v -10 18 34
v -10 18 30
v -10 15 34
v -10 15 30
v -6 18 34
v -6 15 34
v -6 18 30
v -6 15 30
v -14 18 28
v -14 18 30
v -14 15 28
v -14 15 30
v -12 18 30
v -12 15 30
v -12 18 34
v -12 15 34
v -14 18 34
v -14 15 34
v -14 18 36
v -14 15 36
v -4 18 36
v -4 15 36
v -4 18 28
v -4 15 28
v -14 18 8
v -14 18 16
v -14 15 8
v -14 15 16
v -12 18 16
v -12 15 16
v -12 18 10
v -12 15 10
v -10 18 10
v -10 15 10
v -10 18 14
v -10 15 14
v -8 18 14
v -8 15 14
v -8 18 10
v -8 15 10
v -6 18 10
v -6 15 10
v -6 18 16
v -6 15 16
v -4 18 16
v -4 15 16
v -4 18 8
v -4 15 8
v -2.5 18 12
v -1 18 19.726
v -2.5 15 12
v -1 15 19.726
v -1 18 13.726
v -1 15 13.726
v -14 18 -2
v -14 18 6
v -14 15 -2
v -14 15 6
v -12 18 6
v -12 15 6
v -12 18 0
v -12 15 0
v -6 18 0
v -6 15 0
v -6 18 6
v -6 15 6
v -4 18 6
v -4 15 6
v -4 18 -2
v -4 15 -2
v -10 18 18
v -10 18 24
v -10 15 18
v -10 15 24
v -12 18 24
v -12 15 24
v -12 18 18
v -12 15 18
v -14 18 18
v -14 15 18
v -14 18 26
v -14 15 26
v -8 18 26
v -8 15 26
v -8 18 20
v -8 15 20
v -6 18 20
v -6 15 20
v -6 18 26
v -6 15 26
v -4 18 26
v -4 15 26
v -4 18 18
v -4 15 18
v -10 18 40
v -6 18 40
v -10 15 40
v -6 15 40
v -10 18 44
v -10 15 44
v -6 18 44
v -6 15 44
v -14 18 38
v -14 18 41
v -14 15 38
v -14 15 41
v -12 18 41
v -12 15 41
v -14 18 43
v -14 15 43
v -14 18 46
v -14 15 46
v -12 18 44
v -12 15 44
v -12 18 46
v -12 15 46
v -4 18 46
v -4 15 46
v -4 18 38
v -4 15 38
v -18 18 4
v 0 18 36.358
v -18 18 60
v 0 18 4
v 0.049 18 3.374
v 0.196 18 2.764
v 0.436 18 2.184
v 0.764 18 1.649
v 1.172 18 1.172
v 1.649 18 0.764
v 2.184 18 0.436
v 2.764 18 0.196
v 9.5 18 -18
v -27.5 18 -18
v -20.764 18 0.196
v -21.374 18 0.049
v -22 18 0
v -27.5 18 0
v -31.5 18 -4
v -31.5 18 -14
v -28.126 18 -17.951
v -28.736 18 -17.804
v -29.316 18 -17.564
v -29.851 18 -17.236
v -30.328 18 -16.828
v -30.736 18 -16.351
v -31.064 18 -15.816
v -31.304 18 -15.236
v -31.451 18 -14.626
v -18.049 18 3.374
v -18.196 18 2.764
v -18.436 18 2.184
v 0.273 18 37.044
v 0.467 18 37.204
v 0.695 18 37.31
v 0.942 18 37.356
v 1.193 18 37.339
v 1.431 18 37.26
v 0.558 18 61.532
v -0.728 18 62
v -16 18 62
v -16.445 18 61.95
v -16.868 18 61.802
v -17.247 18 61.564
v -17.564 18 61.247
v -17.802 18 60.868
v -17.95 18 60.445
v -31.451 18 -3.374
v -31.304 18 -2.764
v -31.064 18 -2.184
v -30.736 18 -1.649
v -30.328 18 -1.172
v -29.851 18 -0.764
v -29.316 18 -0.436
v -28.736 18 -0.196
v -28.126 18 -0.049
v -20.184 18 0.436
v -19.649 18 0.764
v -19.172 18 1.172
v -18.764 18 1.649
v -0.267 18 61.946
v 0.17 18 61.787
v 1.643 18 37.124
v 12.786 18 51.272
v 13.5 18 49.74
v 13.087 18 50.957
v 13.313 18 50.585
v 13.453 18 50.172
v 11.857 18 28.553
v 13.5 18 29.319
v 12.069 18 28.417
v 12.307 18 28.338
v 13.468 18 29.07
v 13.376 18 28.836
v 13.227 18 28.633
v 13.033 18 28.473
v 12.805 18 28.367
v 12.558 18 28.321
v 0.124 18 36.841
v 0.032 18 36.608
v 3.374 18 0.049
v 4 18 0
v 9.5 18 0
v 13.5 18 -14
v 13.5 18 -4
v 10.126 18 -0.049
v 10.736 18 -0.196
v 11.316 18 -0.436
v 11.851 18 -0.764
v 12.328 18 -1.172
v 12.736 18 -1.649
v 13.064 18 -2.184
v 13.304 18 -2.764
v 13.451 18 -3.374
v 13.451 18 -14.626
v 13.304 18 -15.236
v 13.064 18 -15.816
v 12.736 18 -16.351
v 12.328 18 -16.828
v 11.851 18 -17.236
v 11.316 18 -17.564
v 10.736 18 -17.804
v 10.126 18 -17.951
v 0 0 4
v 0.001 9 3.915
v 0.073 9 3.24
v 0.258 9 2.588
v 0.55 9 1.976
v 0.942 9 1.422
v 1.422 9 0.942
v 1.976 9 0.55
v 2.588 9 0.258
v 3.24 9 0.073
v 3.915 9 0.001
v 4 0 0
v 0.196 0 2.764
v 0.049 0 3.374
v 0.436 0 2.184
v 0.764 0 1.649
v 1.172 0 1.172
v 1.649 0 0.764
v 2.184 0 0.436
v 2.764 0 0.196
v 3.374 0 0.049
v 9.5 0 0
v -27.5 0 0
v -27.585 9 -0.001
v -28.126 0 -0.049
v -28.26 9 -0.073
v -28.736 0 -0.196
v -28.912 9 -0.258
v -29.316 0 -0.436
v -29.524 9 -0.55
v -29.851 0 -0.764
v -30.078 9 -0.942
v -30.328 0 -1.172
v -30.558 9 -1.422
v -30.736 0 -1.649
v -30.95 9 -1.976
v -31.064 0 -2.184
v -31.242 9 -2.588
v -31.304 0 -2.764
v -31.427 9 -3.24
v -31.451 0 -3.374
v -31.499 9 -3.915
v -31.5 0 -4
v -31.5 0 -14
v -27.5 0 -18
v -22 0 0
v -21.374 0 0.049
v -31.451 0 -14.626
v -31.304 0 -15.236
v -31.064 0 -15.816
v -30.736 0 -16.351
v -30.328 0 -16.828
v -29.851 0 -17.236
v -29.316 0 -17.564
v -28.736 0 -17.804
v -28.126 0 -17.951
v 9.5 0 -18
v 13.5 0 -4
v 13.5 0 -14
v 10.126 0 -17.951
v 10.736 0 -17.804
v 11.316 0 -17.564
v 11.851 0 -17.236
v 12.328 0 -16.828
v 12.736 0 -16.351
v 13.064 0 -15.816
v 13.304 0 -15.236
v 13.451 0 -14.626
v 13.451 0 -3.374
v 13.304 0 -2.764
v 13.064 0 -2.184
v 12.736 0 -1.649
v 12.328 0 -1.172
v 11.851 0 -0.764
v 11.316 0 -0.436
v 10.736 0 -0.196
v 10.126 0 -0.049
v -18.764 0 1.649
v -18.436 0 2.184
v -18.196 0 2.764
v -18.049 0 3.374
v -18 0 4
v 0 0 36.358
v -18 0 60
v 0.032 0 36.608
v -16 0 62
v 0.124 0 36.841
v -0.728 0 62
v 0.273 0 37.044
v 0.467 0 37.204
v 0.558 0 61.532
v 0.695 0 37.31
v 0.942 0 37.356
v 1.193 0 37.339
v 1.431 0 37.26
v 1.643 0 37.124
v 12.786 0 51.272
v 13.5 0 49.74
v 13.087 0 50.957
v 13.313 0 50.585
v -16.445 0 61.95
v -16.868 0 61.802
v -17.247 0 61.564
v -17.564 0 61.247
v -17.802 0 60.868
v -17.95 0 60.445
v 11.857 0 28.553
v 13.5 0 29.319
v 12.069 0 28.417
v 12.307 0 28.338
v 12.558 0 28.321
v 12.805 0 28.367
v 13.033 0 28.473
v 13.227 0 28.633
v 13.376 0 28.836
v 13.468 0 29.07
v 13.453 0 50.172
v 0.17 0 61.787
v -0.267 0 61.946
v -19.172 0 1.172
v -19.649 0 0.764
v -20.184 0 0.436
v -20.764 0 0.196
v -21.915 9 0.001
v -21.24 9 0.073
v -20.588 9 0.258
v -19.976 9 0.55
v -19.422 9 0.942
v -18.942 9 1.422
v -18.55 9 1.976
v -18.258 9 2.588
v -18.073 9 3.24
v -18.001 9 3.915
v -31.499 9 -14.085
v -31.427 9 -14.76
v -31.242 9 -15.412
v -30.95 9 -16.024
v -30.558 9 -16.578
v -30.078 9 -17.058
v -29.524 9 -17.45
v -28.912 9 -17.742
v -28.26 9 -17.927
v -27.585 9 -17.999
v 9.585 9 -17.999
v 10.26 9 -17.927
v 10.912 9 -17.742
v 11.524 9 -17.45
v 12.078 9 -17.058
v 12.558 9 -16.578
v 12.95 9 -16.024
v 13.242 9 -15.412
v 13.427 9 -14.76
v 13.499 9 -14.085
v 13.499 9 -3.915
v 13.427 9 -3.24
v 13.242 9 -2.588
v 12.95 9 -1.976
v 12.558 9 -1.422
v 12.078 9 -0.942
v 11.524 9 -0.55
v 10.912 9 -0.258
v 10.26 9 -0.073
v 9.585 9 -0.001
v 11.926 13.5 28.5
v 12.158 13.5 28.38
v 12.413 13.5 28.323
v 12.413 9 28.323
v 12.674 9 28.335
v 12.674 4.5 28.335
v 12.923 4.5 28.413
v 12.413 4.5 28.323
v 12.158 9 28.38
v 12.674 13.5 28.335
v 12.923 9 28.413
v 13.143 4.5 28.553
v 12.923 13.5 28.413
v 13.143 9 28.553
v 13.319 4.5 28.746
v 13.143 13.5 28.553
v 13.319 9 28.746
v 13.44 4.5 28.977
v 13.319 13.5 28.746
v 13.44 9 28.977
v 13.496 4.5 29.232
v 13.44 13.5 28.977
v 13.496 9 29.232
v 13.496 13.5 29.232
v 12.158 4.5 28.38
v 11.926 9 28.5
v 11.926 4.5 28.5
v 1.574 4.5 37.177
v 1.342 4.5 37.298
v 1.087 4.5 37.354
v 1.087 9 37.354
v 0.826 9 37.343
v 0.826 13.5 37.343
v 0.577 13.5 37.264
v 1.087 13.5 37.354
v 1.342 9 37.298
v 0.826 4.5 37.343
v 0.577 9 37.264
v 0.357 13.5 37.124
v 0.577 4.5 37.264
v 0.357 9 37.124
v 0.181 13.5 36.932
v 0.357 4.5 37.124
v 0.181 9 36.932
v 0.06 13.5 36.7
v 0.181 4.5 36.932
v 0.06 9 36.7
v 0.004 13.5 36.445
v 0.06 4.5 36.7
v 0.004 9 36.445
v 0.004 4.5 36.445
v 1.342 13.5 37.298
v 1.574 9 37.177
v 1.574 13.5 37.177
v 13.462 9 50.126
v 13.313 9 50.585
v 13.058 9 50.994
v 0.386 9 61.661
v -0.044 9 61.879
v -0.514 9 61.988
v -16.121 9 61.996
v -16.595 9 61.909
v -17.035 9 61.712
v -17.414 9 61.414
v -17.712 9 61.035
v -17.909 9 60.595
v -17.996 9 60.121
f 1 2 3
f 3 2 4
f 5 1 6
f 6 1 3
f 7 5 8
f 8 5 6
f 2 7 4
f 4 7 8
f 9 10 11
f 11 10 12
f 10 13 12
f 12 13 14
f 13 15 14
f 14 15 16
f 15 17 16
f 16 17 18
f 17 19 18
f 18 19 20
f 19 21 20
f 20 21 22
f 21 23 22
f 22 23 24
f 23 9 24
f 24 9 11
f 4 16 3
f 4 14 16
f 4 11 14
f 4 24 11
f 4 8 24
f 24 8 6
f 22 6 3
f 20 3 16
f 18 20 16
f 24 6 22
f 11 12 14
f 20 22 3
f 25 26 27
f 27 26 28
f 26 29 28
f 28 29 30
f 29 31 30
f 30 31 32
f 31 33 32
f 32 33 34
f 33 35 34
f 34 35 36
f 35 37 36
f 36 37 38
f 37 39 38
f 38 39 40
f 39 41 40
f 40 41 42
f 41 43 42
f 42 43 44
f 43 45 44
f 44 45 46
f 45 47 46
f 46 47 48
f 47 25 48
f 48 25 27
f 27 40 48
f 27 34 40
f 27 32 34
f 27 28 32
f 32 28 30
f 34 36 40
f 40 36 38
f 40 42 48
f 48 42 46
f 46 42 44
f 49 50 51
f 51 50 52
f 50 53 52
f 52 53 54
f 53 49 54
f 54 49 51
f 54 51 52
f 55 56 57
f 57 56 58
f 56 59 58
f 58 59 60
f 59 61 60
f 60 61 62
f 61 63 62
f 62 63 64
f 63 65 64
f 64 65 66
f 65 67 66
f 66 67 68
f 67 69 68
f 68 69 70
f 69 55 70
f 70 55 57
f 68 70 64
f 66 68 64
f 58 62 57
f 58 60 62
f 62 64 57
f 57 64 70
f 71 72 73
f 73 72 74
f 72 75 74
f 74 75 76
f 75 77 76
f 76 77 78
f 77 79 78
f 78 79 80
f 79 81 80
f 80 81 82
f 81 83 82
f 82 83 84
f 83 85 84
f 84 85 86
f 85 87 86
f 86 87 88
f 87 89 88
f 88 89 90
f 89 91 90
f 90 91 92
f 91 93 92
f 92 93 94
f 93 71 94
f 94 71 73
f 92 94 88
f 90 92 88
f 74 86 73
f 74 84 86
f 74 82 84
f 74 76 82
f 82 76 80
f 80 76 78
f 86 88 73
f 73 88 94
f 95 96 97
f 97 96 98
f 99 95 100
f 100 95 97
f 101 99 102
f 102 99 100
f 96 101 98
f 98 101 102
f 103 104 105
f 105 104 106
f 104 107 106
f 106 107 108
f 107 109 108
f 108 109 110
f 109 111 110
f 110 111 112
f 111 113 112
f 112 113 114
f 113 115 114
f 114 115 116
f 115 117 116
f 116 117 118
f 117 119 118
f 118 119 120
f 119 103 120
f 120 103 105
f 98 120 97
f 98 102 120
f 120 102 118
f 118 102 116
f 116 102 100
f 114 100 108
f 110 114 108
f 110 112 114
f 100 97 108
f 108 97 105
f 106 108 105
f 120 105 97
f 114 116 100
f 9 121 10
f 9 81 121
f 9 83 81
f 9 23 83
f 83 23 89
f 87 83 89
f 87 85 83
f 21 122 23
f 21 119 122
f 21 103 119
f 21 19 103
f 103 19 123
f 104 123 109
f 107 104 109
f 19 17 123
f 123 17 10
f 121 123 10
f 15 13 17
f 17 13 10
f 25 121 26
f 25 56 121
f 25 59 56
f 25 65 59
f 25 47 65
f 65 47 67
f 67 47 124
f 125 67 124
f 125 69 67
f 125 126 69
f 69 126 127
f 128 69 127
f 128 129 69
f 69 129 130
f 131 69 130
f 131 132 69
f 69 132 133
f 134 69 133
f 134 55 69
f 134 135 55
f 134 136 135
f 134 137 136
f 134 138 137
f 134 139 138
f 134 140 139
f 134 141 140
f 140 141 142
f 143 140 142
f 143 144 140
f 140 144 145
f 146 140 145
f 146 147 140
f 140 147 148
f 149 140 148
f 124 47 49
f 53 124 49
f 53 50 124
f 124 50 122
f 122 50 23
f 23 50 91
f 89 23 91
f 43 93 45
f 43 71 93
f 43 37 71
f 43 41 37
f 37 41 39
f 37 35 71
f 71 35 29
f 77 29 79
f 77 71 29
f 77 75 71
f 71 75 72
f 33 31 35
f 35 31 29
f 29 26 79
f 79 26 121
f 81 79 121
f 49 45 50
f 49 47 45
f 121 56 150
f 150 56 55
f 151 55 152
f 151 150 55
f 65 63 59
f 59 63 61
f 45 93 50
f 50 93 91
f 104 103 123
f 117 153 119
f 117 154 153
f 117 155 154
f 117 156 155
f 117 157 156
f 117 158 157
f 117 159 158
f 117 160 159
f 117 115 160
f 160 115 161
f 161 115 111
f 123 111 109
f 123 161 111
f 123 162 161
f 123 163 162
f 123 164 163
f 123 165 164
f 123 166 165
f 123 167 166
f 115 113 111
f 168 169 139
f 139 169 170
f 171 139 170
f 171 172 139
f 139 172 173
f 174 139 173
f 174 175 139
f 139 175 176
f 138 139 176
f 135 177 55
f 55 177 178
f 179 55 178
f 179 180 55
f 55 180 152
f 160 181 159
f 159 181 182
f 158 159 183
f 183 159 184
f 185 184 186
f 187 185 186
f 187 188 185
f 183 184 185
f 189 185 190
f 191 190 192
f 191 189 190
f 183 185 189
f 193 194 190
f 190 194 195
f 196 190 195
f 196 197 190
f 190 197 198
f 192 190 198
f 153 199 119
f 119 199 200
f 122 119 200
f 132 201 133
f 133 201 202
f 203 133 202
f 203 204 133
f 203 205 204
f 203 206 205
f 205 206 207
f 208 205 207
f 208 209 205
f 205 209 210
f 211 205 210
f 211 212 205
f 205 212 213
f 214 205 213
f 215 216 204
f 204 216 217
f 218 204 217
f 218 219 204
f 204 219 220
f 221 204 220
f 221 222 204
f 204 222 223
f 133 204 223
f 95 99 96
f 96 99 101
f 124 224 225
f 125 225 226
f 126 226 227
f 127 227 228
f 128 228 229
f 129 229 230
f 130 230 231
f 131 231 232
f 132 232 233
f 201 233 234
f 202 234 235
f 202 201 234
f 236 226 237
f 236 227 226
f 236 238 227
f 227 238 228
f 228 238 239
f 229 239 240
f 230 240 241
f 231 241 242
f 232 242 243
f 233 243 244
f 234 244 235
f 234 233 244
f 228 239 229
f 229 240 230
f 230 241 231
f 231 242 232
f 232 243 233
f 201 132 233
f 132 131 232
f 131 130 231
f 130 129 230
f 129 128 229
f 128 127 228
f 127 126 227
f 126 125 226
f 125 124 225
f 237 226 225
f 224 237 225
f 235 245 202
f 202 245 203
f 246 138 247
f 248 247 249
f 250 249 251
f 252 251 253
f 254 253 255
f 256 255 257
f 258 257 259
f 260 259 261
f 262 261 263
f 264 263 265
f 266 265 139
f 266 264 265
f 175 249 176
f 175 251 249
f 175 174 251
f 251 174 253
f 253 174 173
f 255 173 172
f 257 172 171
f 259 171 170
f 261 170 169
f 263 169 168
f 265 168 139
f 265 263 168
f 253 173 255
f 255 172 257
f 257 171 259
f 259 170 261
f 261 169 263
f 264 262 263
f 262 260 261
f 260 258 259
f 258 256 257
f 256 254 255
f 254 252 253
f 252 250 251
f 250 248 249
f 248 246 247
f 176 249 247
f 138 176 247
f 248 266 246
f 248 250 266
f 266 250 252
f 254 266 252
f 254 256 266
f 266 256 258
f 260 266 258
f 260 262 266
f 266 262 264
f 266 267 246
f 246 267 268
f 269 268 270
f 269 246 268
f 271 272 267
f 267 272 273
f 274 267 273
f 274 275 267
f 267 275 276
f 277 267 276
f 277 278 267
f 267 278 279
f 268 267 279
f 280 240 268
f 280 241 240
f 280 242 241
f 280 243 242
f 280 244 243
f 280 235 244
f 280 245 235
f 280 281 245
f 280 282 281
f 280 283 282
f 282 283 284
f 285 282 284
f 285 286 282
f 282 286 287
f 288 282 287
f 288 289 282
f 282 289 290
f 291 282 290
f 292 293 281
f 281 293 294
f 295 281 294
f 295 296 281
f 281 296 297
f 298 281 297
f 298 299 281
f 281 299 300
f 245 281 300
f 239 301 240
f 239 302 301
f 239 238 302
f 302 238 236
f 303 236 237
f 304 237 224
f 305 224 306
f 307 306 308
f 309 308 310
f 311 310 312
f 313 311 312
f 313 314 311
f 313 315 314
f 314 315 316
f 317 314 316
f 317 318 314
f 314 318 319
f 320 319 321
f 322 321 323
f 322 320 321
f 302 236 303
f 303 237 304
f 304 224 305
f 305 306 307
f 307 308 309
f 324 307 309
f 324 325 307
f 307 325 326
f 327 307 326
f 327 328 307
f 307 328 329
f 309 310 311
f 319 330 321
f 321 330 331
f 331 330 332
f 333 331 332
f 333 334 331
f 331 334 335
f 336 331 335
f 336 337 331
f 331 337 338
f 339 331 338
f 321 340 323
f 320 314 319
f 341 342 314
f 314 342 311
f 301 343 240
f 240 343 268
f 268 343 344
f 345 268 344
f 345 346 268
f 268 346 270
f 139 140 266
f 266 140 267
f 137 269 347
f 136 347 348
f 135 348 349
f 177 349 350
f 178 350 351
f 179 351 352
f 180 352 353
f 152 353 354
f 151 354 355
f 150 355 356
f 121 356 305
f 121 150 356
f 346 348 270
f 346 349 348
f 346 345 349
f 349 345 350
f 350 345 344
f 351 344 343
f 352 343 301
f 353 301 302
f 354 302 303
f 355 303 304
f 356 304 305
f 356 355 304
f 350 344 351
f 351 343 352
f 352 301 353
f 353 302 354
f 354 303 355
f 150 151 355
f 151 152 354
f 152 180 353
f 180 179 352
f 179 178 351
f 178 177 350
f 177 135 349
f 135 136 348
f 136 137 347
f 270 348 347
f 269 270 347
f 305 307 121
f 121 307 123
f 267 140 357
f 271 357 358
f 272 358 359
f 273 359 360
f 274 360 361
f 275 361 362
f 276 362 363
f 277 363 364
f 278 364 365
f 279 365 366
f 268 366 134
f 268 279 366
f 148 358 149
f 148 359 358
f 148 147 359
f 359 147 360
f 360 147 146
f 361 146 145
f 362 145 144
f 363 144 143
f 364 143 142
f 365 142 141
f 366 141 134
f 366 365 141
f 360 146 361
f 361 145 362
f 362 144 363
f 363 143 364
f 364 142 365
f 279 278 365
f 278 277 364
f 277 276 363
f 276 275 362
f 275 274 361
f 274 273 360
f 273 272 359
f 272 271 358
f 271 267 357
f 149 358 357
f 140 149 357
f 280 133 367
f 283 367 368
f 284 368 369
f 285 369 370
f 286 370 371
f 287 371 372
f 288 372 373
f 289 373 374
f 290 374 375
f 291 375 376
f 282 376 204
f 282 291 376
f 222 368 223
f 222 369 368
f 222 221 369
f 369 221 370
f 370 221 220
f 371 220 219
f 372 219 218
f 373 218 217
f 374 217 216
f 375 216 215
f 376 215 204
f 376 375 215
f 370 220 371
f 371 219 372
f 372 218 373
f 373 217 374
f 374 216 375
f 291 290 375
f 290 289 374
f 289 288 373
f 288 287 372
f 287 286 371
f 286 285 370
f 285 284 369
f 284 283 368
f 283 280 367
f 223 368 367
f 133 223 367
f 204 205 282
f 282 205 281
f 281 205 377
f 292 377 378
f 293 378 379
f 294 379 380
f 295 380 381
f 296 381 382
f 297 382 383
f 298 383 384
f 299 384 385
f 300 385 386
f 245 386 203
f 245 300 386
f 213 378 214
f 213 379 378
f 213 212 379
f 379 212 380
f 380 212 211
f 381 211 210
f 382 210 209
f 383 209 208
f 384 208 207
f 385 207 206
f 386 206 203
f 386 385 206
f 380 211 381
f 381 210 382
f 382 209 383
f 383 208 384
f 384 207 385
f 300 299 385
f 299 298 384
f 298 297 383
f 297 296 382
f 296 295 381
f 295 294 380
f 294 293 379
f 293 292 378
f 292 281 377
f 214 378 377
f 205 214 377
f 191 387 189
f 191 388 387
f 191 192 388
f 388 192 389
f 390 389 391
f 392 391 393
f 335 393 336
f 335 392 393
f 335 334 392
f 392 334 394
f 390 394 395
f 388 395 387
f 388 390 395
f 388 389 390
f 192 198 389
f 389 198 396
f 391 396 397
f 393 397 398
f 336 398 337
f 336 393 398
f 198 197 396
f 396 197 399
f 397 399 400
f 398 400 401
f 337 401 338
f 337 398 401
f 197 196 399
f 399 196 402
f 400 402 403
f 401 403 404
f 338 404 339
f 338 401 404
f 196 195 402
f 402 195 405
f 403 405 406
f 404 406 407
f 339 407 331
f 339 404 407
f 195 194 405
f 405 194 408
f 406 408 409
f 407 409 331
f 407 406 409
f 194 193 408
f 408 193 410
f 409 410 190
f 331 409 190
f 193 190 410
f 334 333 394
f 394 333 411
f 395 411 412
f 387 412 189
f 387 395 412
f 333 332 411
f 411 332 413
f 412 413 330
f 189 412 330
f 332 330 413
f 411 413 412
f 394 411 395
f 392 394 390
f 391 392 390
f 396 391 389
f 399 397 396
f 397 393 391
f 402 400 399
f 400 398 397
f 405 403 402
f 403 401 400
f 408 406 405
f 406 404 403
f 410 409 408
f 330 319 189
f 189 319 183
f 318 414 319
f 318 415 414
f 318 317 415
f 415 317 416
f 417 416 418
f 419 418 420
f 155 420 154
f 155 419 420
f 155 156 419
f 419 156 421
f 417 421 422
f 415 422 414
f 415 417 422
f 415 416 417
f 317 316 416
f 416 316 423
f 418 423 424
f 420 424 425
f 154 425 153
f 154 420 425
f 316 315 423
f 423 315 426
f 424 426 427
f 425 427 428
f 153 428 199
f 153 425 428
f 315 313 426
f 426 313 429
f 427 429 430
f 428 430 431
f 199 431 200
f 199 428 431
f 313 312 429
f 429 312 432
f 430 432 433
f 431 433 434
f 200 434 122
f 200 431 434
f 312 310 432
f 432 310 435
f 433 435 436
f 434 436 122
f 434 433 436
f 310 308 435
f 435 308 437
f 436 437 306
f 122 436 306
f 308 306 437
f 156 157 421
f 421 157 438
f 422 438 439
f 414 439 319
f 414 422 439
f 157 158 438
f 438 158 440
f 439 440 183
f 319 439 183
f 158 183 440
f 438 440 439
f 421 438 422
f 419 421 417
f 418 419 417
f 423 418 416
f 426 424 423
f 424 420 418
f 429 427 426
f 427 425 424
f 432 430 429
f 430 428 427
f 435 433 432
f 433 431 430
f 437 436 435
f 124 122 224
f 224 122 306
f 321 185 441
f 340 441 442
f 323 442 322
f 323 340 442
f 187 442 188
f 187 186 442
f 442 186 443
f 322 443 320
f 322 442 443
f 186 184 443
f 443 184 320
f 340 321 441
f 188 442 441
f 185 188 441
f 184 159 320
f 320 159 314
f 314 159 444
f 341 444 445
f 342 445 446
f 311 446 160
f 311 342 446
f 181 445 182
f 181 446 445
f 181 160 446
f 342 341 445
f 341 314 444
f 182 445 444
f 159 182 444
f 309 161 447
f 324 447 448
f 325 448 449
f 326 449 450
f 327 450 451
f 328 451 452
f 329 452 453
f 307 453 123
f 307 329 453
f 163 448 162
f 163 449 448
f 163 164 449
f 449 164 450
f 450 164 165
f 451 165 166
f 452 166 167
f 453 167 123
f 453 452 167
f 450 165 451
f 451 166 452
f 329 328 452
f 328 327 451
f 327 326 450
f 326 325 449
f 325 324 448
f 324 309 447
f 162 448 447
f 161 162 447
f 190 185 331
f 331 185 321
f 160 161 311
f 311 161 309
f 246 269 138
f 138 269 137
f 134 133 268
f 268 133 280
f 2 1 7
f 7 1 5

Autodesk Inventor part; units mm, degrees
ref_plane "YZ Plane" through (0, 0, 0) normal (1, 0, 0) x (0, 1, 0)
ref_plane "XZ Plane" through (0, 0, 0) normal (0, 1, 0) x (-1, 0, 0)
ref_plane "XY Plane" through (0, 0, 0) normal (0, 0, 1) x (1, 0, 0)
sketch "Sketch1" plane through (0, 0, 0) normal (0, 1, 0) x (-1, 0, 0)
  line L0 (0, 0) -> (0, 38.5027)
  line L1 (0, 38.5027) -> (-13.5, 27.1748)
  line L2 (-13.5, 27.1748) -> (-13.5, 50.6722)
  line L3 (-13.5, 50.6722) -> (0, 62)
  line L4 (0, 62) -> (18, 62)
  line L5 (18, 62) -> (18, 0)
  line L6 (18, 0) -> (31.5, 0)
  line L7 (31.5, 0) -> (31.5, -18)
  line L8 (31.5, -18) -> (-13.5, -18)
  line L9 (-13.5, -18) -> (-13.5, 0)
  line L10 (-13.5, 0) -> (0, 0)
  dimension "d0" = 50
  dimension "d1" = 80
  dimension "d2" = 18
  dimension "d3" = 18
  dimension "d4" = 13.5
  dimension "d5" = 13.5
  dimension "d6" = 18
  dimension "d7" = 0
  dimension "d8" = 0
  dimension "d9" = 0
extrude "Extrusion1" add sketch "Sketch1" along normal blind 18
fillet "Fillet1" radius 2 3 edges at (-18, 9, 62) (0, 9, 62) (13.5, 9, 50.6722)
fillet "Fillet2" radius 1 2 edges at (0, 9, 38.5027) (13.5, 9, 27.1748)
fillet "Fillet3" radius 4 6 edges at (13.5, 9, 0) (13.5, 9, -18) (-31.5, 9, -18) (-18, 9, 0) (-31.5, 9, 0) (0, 9, 0)
sketch "Sketch2" plane through (0, 18, 0) normal (0, 1, 0) x (1, 0, 0)
  line L0 (-16, -62) -> (-0.7279, -62) projected
  line L1 (-4, 2) -> (-14, 2)
  line L2 (-14, -6) -> (-14, 2)
  line L3 (-4, 2) -> (-4, -6)
  line L4 (-4, -6) -> (-6, -6)
  line L5 (-6, -6) -> (-6, 0)
  line L6 (-6, 0) -> (-12, 0)
  line L7 (-12, 0) -> (-12, -6)
  line L8 (-12, -6) -> (-14, -6)
  line L9 (-4, -8) -> (-14, -8)
  line L10 (-14, -8) -> (-14, -16)
  line L11 (-12, -16) -> (-14, -16)
  line L12 (-12, -16) -> (-12, -10)
  line L13 (-12, -10) -> (-10, -10)
  line L14 (-10, -10) -> (-10, -14)
  line L15 (-10, -14) -> (-8, -14)
  line L16 (-8, -14) -> (-8, -10)
  line L17 (-8, -10) -> (-6, -10)
  line L18 (-6, -10) -> (-6, -16)
  line L19 (-6, -16) -> (-4, -16)
  line L20 (-4, -8) -> (-4, -16)
  line L21 (-4, -18) -> (-10, -18)
  line L22 (-10, -18) -> (-10, -24)
  line L23 (-10, -24) -> (-12, -24)
  line L24 (-12, -24) -> (-12, -18)
  line L25 (-12, -18) -> (-14, -18)
  line L26 (-14, -18) -> (-14, -26)
  line L27 (-14, -26) -> (-8, -26)
  line L28 (-8, -26) -> (-8, -20)
  line L29 (-8, -20) -> (-6, -20)
  line L30 (-6, -20) -> (-6, -26)
  line L31 (-6, -26) -> (-4, -26)
  line L32 (-4, -18) -> (-4, -26)
  line L33 (-4, -28) -> (-14, -28)
  line L34 (-14, -36) -> (-4, -36)
  line L35 (-4, -36) -> (-4, -28)
  line L36 (-6, -30) -> (-10, -30)
  line L37 (-10, -30) -> (-10, -34)
  line L38 (-4, -38) -> (-14, -38)
  line L39 (-1, -19.7264) -> (-2.5, -12)
  line L40 (-4, -6) -> (-4, -8) construction
  line L41 (-4, -16) -> (-4, -18) construction
  line L42 (-4, -26) -> (-4, -28) construction
  line L43 (-4, -36) -> (-4, -38) construction
  line L44 (-14, -36) -> (-14, -38) construction
  line L45 (-14, -6) -> (-14, -8) construction
  line L46 (-14, -26) -> (-14, -28) construction
  line L47 (-6, -26) -> (-8, -26) construction
  line L48 (-10, -18) -> (-12, -18) construction
  line L49 (-8, -20) -> (-8, -18) construction
  line L50 (-10, -24) -> (-8, -24) construction
  line L51 (-10, -24) -> (-10, -26) construction
  line L52 (-6, -10) -> (-6, -8) construction
  line L53 (-12, -30) -> (-14, -30)
  line L54 (-14, -30) -> (-14, -28)
  line L55 (-14, -34) -> (-14, -36)
  line L56 (-6, -30) -> (-6, -28) construction
  line L57 (-6, -30) -> (-6, -34)
  line L58 (-6, -34) -> (-6, -36) construction
  line L59 (-6, -30) -> (-4, -30) construction
  line L60 (-12, -30) -> (-12, -34)
  line L61 (-12, -34) -> (-14, -34)
  line L62 (-10, -30) -> (-12, -30) construction
  line L63 (-4, -38) -> (-4, -46)
  line L64 (-6, -40) -> (-6, -38) construction
  line L65 (-6, -40) -> (-4, -40) construction
  line L66 (-14, -38) -> (-14, -41)
  line L67 (-14, -41) -> (-12, -41)
  line L68 (-12, -41) -> (-14, -43)
  line L69 (-14, -43) -> (-14, -46)
  line L70 (-14, -46) -> (-12, -44)
  line L71 (-12, -44) -> (-12, -46)
  line L72 (-12, -46) -> (-4, -46)
  line L73 (-10, -40) -> (-10, -44)
  line L74 (-10, -44) -> (-6, -44)
  line L75 (-6, -44) -> (-6, -40)
  line L76 (-2.5, -12) -> (-1, -13.7264)
  line L77 (-12, -46) -> (-14, -46) construction
  line L78 (-14, -41) -> (-14, -43) construction
  line L79 (-6, -40) -> (-10, -40)
  line L80 (-10, -44) -> (-12, -44) construction
  line L81 (-14, -16) -> (-14, -18) construction
  line L82 (-6, -34) -> (-10, -34)
  line L83 (-1, -13.7264) -> (-1, -19.7264)
  line L84 (-1, -13.7264) -> (-1, -12) construction
  line L85 (-1, -12) -> (-2.5, -12) construction
  line L86 (-2.5, -12) -> (-4, -12) construction
  line L87 (-18, -4) -> (-18, -60) projected
  line L88 (0, -36.3582) -> (0, -4) projected
  line L89 (9.5, 18) -> (-27.5, 18) projected
  line L90 (-9, -46) -> (-9, -62) construction
  line L91 (-9, 2) -> (-9, 18) construction
  line L92 (-4, -22) -> (0, -22) construction
  line L93 (-14, -22) -> (-18, -22) construction
  point P0 (0, 0)
  dimension "d18" = 10
  dimension "d19" = 8
  dimension "d20" = 2
  dimension "d21" = 45
  dimension "d26" = 0
  dimension "d29" = 3
  dimension "d31" = 30
extrude "Extrusion2" cut sketch "Sketch2" against normal blind 3
